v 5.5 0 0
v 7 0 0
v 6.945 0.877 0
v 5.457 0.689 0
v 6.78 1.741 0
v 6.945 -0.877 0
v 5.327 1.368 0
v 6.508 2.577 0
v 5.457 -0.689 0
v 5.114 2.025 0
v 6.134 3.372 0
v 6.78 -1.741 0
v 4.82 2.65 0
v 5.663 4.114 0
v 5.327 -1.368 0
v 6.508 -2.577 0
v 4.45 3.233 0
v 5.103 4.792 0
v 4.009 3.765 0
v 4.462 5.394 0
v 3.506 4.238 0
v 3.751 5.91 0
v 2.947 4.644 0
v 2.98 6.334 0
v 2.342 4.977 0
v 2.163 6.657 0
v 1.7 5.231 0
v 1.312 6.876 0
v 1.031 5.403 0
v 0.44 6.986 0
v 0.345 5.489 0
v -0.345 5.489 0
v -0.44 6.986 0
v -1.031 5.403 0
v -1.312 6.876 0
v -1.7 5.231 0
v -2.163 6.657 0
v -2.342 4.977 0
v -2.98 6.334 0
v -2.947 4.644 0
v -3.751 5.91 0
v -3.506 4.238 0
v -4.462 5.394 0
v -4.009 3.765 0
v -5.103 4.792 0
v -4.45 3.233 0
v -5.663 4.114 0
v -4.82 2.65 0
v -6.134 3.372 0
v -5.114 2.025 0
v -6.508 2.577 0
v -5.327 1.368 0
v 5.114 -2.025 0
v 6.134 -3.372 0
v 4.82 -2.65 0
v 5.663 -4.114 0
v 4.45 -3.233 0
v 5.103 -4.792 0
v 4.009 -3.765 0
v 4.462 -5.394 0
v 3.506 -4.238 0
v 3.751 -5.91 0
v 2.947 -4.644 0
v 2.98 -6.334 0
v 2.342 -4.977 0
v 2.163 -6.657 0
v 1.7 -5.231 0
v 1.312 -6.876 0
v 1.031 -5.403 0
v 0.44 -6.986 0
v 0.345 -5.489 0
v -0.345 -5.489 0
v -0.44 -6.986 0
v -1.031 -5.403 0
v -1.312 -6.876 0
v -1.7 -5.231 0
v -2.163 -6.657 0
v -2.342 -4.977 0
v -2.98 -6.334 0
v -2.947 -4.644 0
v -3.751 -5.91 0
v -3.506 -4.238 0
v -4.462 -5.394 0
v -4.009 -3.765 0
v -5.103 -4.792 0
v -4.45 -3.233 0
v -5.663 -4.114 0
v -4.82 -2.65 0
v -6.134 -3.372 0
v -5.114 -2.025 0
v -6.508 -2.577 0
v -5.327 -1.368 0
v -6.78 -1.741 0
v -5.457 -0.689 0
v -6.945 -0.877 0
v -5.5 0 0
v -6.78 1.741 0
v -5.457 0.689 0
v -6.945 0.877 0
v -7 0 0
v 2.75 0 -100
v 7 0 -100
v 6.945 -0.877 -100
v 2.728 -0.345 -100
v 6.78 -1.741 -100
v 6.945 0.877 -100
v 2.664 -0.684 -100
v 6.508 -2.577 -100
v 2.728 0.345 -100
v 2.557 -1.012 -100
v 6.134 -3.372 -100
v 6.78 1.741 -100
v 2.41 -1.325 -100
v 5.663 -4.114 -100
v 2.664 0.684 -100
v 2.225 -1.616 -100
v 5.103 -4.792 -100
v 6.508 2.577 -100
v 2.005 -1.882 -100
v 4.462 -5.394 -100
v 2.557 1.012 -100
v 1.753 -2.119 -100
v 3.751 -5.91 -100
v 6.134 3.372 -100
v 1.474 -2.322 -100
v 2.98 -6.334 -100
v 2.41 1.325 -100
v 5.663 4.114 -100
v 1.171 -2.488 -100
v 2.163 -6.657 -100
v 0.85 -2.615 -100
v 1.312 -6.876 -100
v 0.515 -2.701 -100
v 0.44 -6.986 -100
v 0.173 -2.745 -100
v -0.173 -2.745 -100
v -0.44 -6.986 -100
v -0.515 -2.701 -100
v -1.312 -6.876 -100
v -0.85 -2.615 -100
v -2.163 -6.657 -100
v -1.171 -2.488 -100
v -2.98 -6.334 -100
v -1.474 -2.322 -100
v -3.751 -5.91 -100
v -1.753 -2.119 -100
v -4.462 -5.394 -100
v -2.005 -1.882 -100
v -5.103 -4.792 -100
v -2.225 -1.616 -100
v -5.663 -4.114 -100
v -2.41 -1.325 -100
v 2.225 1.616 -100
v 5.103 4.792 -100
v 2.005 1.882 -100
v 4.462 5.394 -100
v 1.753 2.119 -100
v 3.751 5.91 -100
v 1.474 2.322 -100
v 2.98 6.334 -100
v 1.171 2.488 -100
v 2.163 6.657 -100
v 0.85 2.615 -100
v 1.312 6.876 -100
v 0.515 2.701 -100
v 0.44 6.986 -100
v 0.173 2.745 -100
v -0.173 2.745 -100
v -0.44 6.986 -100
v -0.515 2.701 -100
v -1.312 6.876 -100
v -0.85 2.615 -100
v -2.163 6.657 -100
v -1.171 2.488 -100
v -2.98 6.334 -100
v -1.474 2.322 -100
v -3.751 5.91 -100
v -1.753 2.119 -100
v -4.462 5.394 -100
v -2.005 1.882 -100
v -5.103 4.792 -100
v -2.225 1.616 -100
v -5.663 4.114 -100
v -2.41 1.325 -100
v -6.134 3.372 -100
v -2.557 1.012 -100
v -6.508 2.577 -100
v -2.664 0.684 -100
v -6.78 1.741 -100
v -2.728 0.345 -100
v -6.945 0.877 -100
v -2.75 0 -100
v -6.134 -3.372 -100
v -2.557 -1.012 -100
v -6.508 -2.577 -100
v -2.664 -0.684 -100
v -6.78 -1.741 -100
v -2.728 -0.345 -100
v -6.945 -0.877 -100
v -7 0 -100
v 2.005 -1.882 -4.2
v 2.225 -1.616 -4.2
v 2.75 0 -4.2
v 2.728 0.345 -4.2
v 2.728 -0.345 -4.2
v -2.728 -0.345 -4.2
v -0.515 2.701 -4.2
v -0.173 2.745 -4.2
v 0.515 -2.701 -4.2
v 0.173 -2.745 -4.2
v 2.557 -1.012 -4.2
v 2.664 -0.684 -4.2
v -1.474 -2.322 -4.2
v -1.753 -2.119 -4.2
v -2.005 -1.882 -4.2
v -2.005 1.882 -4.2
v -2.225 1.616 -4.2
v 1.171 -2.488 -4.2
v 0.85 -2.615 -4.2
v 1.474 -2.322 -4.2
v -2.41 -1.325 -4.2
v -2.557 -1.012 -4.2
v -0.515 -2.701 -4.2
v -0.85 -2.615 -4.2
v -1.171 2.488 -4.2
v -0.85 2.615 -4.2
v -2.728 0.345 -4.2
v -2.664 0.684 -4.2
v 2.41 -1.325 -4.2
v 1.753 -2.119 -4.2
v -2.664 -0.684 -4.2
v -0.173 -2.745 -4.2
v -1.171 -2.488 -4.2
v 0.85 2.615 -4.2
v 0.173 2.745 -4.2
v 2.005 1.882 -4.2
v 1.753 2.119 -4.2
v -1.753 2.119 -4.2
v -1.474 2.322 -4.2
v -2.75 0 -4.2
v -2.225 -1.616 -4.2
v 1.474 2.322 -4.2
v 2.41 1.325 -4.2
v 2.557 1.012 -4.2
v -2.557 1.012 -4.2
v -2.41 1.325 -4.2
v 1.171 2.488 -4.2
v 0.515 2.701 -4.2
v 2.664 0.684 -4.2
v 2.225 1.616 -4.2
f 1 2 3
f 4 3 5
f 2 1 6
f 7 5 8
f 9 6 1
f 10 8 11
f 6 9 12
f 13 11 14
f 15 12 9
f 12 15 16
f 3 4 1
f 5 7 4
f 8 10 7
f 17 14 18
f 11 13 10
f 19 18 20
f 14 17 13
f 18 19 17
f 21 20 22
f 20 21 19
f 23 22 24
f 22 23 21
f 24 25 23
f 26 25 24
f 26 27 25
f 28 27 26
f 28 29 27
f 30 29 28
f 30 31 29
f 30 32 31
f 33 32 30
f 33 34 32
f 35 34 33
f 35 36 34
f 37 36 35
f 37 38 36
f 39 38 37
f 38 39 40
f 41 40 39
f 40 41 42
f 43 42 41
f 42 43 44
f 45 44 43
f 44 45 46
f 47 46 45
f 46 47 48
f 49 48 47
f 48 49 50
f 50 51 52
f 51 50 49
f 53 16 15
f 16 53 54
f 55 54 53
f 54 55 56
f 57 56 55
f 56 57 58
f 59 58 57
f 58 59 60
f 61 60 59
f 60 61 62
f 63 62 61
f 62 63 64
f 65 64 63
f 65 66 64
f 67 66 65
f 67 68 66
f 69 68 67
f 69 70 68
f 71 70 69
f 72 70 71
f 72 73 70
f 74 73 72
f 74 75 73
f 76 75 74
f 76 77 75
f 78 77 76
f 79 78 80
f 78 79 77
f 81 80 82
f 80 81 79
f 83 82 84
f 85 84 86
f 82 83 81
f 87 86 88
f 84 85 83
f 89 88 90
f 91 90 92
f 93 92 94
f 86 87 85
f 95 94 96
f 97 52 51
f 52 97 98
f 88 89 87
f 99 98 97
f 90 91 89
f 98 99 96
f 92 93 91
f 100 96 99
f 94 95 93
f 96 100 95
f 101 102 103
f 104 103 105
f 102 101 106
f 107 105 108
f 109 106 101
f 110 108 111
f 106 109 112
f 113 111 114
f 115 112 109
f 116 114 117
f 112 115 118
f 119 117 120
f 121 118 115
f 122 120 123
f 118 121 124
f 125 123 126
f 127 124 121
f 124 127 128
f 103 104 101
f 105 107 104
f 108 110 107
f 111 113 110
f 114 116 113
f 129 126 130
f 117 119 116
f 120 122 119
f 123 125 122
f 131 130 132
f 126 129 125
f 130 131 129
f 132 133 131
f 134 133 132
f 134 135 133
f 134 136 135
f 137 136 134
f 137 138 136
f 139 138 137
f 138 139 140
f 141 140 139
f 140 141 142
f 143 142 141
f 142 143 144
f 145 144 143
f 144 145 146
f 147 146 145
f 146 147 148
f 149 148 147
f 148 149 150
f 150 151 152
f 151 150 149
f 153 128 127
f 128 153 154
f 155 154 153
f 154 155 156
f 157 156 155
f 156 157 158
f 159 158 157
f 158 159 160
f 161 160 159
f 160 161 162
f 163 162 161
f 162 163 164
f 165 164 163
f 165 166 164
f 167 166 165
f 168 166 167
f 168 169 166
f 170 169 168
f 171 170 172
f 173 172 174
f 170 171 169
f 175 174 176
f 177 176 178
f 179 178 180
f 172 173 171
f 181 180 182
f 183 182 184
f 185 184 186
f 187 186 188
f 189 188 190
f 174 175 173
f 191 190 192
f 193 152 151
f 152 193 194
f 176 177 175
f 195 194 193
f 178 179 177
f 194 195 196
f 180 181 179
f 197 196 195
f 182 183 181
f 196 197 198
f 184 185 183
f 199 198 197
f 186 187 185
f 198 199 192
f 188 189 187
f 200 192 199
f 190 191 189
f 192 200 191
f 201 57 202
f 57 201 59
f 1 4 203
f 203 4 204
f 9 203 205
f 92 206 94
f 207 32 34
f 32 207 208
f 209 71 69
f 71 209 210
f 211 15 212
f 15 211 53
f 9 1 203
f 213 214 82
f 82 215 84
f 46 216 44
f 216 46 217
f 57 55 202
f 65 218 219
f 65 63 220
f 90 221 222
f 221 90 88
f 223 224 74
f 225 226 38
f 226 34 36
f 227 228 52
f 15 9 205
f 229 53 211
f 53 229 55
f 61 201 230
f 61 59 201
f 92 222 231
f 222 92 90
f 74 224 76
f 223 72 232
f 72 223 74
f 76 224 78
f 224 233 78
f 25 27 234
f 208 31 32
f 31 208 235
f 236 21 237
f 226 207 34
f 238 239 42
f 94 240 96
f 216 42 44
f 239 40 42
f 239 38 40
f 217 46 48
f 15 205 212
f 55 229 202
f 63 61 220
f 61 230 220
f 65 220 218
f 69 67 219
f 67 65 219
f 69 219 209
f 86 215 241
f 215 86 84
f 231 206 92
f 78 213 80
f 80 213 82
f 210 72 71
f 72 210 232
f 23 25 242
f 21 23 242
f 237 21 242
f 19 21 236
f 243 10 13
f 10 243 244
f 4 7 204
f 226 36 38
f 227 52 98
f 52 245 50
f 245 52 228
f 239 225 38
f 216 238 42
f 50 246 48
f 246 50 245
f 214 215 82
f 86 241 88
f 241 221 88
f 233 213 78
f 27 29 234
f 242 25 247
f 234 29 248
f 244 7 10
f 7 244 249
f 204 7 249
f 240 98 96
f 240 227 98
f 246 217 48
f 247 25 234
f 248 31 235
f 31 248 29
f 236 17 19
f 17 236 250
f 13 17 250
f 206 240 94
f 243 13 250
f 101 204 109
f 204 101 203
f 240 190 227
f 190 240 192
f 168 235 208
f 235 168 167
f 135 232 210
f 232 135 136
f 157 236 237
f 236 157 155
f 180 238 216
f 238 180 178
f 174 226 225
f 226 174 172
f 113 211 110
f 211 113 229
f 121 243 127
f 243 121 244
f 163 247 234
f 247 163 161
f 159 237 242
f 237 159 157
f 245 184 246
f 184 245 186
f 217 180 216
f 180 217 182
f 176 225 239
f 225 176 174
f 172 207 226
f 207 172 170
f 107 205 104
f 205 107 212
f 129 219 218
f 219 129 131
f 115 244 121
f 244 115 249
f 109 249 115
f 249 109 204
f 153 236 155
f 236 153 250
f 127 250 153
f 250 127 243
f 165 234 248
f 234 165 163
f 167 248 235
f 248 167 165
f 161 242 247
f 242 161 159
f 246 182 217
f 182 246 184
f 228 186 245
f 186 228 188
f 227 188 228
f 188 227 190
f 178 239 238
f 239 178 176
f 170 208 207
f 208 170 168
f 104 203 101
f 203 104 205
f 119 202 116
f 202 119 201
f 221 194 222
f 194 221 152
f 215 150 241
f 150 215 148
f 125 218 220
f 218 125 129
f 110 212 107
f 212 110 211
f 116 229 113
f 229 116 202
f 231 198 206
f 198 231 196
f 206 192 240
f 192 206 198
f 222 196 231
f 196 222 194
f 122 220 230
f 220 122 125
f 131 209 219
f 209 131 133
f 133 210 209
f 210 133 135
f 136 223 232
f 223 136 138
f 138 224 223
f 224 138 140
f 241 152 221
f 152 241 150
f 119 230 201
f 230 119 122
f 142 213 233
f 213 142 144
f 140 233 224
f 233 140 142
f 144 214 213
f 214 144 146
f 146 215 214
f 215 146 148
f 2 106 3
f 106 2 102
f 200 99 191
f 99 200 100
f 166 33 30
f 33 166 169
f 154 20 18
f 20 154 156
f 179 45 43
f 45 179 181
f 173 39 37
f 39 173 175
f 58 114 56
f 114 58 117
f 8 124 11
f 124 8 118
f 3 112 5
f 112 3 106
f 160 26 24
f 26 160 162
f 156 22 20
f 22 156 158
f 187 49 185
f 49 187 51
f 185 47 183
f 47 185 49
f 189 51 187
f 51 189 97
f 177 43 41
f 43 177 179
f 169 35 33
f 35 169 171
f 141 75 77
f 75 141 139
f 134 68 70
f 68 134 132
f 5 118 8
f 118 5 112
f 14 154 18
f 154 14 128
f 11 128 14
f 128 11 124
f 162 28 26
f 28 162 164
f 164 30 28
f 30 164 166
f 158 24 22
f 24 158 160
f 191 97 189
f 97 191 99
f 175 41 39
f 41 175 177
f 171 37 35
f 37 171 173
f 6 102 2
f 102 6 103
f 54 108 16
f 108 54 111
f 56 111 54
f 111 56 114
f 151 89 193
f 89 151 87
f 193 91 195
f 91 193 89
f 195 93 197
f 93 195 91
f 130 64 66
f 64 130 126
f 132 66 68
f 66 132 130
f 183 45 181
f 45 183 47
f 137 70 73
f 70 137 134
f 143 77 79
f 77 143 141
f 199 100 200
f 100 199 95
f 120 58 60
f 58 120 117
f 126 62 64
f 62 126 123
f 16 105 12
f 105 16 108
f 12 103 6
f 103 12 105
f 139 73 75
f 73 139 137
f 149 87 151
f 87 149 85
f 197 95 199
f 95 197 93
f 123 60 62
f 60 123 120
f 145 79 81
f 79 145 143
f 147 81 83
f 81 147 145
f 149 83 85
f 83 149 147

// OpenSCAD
$fn = 50;


difference() {
	union() {
		translate(v = [0, 0, -100.0000000000]) {
			cylinder(h = 100, r = 7.0000000000);
		}
		cylinder(h = 0, r = 13.0000000000);
	}
	union() {
		translate(v = [0, 0, 0]) {
			rotate(a = [0, 0, 0]) {
				difference() {
					union() {
						#translate(v = [0, 0, -100.0000000000]) {
							cylinder(h = 100, r = 2.2500000000);
						}
						#translate(v = [0, 0, -4.2000000000]) {
							cylinder(h = 4.2000000000, r1 = 2.7500000000, r2 = 5.5000000000);
						}
						#translate(v = [0, 0, -100.0000000000]) {
							cylinder(h = 100, r = 2.7500000000);
						}
						#translate(v = [0, 0, -100.0000000000]) {
							cylinder(h = 100, r = 2.2500000000);
						}
					}
					union();
				}
			}
		}
	}
}
